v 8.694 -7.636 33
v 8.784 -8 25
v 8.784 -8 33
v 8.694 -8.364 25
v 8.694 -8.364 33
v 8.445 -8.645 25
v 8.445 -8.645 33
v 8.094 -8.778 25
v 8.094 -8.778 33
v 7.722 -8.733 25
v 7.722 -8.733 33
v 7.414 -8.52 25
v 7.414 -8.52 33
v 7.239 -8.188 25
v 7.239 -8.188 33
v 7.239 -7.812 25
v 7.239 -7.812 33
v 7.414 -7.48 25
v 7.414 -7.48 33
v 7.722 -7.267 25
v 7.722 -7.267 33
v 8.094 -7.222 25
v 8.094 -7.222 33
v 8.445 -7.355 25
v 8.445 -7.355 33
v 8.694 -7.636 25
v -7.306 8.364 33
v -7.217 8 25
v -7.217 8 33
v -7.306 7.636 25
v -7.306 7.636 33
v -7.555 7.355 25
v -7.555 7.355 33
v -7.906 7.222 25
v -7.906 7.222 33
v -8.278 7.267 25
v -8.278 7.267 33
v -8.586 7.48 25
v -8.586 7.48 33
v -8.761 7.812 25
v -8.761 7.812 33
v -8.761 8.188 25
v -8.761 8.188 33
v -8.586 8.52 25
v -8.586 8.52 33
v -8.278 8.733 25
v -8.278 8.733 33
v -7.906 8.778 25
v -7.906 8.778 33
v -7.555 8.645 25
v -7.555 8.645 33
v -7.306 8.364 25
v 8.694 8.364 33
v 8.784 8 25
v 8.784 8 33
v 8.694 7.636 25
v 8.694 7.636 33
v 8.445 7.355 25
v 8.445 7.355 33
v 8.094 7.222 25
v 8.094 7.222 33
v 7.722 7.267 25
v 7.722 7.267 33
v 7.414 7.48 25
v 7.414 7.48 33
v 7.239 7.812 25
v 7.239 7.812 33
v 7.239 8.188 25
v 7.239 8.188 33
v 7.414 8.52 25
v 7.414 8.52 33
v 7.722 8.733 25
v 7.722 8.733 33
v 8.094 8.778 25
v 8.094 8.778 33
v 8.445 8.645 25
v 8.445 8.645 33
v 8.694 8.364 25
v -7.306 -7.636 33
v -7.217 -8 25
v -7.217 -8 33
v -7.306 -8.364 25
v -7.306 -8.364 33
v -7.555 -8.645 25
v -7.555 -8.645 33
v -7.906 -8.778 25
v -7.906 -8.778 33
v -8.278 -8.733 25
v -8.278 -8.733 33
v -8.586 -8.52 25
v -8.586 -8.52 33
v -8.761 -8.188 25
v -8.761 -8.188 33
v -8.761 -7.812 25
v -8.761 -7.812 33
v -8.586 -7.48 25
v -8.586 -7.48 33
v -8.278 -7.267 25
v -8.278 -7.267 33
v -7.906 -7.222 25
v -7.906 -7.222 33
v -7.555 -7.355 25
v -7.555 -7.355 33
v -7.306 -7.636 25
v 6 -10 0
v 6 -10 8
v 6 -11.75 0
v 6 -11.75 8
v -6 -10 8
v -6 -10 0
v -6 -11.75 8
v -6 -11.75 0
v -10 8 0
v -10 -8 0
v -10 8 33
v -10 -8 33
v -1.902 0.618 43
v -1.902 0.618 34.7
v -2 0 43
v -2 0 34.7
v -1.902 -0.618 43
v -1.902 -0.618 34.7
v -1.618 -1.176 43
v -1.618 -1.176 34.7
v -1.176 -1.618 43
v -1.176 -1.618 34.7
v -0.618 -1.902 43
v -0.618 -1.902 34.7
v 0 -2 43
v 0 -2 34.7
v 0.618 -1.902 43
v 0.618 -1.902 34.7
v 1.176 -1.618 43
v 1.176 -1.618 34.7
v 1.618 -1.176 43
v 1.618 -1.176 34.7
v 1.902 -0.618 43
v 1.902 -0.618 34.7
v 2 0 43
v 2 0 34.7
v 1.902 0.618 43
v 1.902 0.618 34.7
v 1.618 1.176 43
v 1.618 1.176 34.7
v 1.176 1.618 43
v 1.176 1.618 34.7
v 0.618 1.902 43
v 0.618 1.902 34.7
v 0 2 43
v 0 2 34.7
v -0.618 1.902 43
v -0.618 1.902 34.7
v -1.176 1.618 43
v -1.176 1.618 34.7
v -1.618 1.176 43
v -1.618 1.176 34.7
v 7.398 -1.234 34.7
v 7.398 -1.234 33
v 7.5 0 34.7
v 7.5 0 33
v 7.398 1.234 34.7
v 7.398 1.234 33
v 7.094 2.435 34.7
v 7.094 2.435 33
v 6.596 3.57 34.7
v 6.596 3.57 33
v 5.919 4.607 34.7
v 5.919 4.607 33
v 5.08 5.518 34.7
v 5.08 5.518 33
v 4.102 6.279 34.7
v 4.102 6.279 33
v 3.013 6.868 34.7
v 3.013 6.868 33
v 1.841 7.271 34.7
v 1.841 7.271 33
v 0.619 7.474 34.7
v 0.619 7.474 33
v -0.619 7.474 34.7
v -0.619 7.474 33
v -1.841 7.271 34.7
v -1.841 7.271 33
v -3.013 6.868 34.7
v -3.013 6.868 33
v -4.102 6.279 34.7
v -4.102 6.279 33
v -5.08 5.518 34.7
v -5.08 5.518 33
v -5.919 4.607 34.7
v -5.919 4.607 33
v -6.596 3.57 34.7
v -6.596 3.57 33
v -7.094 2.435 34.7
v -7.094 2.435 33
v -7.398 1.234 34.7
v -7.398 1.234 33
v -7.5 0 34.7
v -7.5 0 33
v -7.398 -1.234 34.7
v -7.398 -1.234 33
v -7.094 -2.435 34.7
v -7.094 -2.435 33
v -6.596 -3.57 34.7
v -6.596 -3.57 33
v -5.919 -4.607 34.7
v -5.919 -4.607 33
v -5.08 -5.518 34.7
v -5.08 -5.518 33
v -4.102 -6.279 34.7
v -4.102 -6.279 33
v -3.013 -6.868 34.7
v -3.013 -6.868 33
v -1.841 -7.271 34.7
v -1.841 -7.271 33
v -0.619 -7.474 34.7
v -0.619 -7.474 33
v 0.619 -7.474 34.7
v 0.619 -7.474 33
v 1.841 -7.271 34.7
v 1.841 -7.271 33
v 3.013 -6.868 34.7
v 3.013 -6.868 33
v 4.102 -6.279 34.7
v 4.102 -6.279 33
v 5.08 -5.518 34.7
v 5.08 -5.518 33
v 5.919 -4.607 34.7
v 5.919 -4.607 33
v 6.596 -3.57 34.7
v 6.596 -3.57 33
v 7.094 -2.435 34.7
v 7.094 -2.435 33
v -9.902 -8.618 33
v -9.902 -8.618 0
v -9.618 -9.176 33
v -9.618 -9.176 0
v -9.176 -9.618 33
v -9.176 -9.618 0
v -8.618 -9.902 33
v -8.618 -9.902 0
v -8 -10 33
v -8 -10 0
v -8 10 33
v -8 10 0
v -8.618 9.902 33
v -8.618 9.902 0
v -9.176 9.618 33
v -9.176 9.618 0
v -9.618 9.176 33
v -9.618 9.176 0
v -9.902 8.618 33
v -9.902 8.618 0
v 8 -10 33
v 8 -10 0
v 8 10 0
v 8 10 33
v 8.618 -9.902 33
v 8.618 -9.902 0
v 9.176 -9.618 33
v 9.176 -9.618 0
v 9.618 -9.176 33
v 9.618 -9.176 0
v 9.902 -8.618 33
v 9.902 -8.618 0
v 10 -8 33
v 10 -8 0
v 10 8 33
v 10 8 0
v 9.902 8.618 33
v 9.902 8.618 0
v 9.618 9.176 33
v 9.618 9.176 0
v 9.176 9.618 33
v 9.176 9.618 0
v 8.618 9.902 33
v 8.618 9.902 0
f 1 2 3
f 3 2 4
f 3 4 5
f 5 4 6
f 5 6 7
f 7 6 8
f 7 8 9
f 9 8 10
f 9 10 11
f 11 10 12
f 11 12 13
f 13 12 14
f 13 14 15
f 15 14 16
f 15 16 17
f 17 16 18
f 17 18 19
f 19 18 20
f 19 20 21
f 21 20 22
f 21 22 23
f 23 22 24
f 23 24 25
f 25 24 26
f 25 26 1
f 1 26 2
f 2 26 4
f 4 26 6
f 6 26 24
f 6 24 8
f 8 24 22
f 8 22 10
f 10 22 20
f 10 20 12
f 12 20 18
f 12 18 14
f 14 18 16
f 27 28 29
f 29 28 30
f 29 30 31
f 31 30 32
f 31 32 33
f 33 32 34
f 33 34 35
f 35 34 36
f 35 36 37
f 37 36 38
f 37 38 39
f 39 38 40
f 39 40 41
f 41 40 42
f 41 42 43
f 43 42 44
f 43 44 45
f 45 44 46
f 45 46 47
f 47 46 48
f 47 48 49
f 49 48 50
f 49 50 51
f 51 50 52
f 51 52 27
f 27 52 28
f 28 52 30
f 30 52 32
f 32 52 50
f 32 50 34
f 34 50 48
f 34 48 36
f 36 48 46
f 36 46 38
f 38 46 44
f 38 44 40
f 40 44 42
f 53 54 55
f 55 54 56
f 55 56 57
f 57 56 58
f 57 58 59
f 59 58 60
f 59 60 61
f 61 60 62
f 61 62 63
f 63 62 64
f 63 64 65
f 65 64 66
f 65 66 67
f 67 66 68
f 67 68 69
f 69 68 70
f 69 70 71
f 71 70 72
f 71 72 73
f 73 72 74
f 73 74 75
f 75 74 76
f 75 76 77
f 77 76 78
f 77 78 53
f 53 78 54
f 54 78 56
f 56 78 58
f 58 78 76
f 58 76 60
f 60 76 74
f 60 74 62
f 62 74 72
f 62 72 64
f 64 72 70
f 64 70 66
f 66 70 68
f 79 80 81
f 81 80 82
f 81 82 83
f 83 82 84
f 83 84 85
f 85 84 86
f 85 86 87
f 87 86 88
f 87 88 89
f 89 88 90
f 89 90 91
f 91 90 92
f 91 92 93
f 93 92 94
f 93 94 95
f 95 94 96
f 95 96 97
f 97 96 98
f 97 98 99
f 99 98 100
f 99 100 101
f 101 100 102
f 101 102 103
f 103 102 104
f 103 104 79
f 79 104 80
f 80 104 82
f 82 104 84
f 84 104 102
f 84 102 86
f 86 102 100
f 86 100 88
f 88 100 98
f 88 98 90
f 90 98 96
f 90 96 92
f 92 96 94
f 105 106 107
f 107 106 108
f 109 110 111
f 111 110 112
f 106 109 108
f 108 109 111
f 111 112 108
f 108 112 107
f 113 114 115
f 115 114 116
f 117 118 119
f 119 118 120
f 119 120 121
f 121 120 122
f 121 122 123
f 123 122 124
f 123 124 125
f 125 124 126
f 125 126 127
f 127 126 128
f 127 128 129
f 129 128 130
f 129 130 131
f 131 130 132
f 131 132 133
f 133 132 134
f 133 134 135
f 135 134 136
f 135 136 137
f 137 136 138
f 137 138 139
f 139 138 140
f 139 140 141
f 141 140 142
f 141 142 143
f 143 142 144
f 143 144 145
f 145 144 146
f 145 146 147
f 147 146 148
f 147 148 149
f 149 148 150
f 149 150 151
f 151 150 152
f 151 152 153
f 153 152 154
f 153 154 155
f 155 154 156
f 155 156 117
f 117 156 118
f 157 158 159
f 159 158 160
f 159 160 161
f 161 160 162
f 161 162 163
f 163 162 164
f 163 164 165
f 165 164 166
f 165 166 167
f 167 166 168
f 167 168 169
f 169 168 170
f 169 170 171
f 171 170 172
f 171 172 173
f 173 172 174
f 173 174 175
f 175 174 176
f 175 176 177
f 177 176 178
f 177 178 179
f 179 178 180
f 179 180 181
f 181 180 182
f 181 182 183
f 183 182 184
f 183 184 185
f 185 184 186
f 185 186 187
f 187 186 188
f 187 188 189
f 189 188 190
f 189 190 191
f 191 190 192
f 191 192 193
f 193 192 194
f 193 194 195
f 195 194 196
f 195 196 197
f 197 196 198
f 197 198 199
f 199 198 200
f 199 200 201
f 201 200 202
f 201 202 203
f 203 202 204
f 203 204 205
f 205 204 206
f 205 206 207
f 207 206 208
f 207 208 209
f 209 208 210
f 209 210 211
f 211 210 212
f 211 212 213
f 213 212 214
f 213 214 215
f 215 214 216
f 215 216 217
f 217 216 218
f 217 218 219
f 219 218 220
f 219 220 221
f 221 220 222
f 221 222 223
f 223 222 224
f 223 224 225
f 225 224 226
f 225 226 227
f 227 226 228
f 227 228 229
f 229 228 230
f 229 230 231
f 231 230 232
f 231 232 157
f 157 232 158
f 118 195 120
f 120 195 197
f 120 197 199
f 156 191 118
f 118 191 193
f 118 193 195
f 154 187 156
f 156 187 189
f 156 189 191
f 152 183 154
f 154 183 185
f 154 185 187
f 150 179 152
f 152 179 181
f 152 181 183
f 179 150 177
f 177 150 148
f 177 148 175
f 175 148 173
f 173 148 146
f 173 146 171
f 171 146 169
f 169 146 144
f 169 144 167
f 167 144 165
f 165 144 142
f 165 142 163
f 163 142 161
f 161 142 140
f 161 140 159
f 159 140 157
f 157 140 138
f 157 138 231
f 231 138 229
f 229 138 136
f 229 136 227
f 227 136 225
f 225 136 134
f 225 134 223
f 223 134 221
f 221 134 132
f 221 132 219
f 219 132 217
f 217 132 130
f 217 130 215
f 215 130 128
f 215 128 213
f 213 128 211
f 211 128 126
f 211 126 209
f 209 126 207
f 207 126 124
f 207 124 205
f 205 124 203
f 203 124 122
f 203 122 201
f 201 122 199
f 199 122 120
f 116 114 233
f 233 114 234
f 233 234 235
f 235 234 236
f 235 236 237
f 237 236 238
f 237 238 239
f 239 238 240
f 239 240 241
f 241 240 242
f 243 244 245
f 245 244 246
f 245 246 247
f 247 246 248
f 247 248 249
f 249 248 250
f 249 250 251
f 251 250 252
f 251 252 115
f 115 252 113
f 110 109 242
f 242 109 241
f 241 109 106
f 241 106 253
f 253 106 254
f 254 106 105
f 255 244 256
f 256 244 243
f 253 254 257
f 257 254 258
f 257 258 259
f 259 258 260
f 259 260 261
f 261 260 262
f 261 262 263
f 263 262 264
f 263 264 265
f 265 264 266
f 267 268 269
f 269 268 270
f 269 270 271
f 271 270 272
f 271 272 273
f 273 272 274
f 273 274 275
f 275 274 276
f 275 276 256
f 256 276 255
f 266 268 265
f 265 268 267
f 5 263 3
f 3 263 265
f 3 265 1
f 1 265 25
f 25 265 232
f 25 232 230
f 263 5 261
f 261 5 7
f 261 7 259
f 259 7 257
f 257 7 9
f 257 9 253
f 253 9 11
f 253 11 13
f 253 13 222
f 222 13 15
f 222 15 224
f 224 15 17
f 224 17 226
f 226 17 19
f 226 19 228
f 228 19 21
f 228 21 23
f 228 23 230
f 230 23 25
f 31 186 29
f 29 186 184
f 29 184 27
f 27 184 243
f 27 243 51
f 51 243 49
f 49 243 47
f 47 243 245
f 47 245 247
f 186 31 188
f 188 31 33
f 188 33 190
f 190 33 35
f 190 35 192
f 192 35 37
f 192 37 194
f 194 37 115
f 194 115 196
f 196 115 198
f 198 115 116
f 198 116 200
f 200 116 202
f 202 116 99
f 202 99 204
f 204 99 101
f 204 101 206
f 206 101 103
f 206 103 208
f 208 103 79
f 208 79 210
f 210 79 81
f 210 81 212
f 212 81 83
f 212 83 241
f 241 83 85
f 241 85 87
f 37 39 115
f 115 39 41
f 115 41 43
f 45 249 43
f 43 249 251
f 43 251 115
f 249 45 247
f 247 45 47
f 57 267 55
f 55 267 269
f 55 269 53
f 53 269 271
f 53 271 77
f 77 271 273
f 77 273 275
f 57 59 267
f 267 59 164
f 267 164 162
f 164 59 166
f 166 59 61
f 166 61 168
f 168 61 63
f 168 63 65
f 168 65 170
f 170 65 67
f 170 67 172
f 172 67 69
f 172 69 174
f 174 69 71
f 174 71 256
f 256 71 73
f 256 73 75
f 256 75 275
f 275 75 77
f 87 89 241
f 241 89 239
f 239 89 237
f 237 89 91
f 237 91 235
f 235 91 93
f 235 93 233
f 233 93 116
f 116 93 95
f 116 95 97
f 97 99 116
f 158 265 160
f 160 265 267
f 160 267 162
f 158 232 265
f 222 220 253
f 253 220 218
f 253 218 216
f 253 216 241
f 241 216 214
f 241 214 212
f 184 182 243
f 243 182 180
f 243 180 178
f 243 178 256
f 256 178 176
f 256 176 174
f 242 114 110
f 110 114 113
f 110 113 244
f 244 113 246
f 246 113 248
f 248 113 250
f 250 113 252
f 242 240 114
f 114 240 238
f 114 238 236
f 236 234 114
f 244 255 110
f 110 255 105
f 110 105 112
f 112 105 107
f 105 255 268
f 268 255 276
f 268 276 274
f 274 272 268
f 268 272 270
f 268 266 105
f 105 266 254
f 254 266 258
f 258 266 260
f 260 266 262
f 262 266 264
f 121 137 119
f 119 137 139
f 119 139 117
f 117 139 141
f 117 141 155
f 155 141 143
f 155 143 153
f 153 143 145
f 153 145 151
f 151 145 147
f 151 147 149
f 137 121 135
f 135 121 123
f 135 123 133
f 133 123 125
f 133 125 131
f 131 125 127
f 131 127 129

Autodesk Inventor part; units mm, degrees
ref_plane "YZ Plane" through (0, 0, 0) normal (1, 0, 0) x (0, 1, 0)
ref_plane "XZ Plane" through (0, 0, 0) normal (0, 1, 0) x (-1, 0, 0)
ref_plane "XY Plane" through (0, 0, 0) normal (0, 0, 1) x (1, 0, 0)
sketch "Sketch1" plane through (0, 0, 0) normal (0, 0, 1) x (1, 0, 0)
  line L0 (-8, 10) -> (8, 10)
  line L1 (10, 8) -> (10, -8)
  line L2 (8, -10) -> (-8, -10)
  line L3 (-10, -8) -> (-10, 8)
  line L4 (0, 0) -> (10, 0) construction
  line L5 (0, 0) -> (0, 10) construction
  arc A0 (-8, 10) -> (-10, 8) centre (-8, 8) ccw
  arc A1 (-10, -8) -> (-8, -10) centre (-8, -8) ccw
  arc A2 (8, -10) -> (10, -8) centre (8, -8) ccw
  arc A3 (10, 8) -> (8, 10) centre (8, 8) ccw
  point P0 (10, -10)
  point P1 (10, 10)
  dimension "d1" = 20
  dimension "d3" = 16
extrude "Extrusion1" add sketch "Sketch1" along normal blind 33
sketch "Sketch2" plane through (0, 0, 33) normal (0, 0, 1) x (1, 0, 0)
  circle A0 centre (0, 0) radius 7.5
  dimension "d6" = 15
extrude "Extrusion2" add sketch "Sketch2" along normal blind 1.7
sketch "Sketch3" plane through (0, 0, 34.7) normal (0, 0, 1) x (1, 0, 0)
  circle A0 centre (0, 0) radius 2
  dimension "d9" = 4
extrude "Extrusion3" add sketch "Sketch3" along normal blind 10 from surface at -1.7
sketch "Sketch4" plane through (-8, -10, 0) normal (0, -1, 0) x (1, 0, 0)
  line L0 (16, 0) -> (0, 0) projected
  line L1 (2, 0) -> (14, 0)
  line L2 (14, 0) -> (14, 8)
  line L3 (8, 8) -> (2, 8)
  line L4 (2, 8) -> (2, 0)
  line L5 (8, 0) -> (8, 46.0613) construction
  line L6 (8, 8) -> (14, 8)
  dimension "d12" = 12
  dimension "d13" = 8
extrude "Extrusion4" add sketch "Sketch4" along normal blind 1.75
sketch "Sketch5" plane through (0, 0, 33) normal (0, 0, 1) x (1, 0, 0)
  line L0 (8, 10) -> (-8, 10) construction
  line L1 (6, -10) -> (8, -10) construction
  line L2 (-8, 10) -> (8, 10) construction
  line L3 (8, 10) -> (8, -10) construction
  line L4 (8, -10) -> (-8, -10) construction
  line L5 (-8, -10) -> (-8, 10) construction
  line L6 (10, -8) -> (10, 8) construction
  line L7 (-10, 8) -> (-10, -8) construction
  line L8 (10, 8) -> (-10, 8) construction
  line L9 (-10, 8) -> (-10, -8) construction
  line L10 (-10, -8) -> (10, -8) construction
  line L11 (10, -8) -> (10, 8) construction
  point P0 (0, 0)
  point P1 (-8, 8)
  point P2 (8, 8)
  point P3 (8, -8)
  point P4 (-8, -8)
hole "Hole1" at (-8, 8, 33) at (8, 8, 33) at (8, -8, 33) at (-8, -8, 33) direction (0, 0, -1) diameter 1.567 depth 8 thread size "M2x0.4" class "6H" standard "ANSI Metric M Profile"
sketch "Sketch6" plane through (0, 0, 0) normal (0, 0, -1) x (-1, 0, 0)
  line L0 (-4, -10.25) -> (4, -10.25)
  line L1 (4, -10.25) -> (4, -10.75)
  line L2 (-4, -10.75) -> (-4, -10.25)
  line L3 (0, 0) -> (0, -11.75) construction
  line L4 (-6, -11.75) -> (6, -11.75) construction
  line L5 (4, -10.75) -> (0, -10.75)
  line L6 (-4, -10.75) -> (0, -10.75)
  line L7 (8, -10) -> (-8, -10) projected
  dimension "d23" = 8
  dimension "d24" = 0.5
  dimension "d25" = 1
extrude "Extrusion5" [suppressed]
equation "\"d13\" = extrusionHeight"
equation "\"d21\" = screwDepth"
equation "\"d23\" = ribbonWidth"
equation "\"d24\" = ribbonThickness"
equation "\"d25\" = ribbonEdgeOffset"
equation "\"extrusionHeight\" = 8"
equation "\"screwDepth\" = 8"
equation "\"ribbonWidth\" = 8"
equation "\"ribbonThickness\" = 0.5"
equation "\"ribbonEdgeOffset\" = 1"
properties part number "StepperMotor"
